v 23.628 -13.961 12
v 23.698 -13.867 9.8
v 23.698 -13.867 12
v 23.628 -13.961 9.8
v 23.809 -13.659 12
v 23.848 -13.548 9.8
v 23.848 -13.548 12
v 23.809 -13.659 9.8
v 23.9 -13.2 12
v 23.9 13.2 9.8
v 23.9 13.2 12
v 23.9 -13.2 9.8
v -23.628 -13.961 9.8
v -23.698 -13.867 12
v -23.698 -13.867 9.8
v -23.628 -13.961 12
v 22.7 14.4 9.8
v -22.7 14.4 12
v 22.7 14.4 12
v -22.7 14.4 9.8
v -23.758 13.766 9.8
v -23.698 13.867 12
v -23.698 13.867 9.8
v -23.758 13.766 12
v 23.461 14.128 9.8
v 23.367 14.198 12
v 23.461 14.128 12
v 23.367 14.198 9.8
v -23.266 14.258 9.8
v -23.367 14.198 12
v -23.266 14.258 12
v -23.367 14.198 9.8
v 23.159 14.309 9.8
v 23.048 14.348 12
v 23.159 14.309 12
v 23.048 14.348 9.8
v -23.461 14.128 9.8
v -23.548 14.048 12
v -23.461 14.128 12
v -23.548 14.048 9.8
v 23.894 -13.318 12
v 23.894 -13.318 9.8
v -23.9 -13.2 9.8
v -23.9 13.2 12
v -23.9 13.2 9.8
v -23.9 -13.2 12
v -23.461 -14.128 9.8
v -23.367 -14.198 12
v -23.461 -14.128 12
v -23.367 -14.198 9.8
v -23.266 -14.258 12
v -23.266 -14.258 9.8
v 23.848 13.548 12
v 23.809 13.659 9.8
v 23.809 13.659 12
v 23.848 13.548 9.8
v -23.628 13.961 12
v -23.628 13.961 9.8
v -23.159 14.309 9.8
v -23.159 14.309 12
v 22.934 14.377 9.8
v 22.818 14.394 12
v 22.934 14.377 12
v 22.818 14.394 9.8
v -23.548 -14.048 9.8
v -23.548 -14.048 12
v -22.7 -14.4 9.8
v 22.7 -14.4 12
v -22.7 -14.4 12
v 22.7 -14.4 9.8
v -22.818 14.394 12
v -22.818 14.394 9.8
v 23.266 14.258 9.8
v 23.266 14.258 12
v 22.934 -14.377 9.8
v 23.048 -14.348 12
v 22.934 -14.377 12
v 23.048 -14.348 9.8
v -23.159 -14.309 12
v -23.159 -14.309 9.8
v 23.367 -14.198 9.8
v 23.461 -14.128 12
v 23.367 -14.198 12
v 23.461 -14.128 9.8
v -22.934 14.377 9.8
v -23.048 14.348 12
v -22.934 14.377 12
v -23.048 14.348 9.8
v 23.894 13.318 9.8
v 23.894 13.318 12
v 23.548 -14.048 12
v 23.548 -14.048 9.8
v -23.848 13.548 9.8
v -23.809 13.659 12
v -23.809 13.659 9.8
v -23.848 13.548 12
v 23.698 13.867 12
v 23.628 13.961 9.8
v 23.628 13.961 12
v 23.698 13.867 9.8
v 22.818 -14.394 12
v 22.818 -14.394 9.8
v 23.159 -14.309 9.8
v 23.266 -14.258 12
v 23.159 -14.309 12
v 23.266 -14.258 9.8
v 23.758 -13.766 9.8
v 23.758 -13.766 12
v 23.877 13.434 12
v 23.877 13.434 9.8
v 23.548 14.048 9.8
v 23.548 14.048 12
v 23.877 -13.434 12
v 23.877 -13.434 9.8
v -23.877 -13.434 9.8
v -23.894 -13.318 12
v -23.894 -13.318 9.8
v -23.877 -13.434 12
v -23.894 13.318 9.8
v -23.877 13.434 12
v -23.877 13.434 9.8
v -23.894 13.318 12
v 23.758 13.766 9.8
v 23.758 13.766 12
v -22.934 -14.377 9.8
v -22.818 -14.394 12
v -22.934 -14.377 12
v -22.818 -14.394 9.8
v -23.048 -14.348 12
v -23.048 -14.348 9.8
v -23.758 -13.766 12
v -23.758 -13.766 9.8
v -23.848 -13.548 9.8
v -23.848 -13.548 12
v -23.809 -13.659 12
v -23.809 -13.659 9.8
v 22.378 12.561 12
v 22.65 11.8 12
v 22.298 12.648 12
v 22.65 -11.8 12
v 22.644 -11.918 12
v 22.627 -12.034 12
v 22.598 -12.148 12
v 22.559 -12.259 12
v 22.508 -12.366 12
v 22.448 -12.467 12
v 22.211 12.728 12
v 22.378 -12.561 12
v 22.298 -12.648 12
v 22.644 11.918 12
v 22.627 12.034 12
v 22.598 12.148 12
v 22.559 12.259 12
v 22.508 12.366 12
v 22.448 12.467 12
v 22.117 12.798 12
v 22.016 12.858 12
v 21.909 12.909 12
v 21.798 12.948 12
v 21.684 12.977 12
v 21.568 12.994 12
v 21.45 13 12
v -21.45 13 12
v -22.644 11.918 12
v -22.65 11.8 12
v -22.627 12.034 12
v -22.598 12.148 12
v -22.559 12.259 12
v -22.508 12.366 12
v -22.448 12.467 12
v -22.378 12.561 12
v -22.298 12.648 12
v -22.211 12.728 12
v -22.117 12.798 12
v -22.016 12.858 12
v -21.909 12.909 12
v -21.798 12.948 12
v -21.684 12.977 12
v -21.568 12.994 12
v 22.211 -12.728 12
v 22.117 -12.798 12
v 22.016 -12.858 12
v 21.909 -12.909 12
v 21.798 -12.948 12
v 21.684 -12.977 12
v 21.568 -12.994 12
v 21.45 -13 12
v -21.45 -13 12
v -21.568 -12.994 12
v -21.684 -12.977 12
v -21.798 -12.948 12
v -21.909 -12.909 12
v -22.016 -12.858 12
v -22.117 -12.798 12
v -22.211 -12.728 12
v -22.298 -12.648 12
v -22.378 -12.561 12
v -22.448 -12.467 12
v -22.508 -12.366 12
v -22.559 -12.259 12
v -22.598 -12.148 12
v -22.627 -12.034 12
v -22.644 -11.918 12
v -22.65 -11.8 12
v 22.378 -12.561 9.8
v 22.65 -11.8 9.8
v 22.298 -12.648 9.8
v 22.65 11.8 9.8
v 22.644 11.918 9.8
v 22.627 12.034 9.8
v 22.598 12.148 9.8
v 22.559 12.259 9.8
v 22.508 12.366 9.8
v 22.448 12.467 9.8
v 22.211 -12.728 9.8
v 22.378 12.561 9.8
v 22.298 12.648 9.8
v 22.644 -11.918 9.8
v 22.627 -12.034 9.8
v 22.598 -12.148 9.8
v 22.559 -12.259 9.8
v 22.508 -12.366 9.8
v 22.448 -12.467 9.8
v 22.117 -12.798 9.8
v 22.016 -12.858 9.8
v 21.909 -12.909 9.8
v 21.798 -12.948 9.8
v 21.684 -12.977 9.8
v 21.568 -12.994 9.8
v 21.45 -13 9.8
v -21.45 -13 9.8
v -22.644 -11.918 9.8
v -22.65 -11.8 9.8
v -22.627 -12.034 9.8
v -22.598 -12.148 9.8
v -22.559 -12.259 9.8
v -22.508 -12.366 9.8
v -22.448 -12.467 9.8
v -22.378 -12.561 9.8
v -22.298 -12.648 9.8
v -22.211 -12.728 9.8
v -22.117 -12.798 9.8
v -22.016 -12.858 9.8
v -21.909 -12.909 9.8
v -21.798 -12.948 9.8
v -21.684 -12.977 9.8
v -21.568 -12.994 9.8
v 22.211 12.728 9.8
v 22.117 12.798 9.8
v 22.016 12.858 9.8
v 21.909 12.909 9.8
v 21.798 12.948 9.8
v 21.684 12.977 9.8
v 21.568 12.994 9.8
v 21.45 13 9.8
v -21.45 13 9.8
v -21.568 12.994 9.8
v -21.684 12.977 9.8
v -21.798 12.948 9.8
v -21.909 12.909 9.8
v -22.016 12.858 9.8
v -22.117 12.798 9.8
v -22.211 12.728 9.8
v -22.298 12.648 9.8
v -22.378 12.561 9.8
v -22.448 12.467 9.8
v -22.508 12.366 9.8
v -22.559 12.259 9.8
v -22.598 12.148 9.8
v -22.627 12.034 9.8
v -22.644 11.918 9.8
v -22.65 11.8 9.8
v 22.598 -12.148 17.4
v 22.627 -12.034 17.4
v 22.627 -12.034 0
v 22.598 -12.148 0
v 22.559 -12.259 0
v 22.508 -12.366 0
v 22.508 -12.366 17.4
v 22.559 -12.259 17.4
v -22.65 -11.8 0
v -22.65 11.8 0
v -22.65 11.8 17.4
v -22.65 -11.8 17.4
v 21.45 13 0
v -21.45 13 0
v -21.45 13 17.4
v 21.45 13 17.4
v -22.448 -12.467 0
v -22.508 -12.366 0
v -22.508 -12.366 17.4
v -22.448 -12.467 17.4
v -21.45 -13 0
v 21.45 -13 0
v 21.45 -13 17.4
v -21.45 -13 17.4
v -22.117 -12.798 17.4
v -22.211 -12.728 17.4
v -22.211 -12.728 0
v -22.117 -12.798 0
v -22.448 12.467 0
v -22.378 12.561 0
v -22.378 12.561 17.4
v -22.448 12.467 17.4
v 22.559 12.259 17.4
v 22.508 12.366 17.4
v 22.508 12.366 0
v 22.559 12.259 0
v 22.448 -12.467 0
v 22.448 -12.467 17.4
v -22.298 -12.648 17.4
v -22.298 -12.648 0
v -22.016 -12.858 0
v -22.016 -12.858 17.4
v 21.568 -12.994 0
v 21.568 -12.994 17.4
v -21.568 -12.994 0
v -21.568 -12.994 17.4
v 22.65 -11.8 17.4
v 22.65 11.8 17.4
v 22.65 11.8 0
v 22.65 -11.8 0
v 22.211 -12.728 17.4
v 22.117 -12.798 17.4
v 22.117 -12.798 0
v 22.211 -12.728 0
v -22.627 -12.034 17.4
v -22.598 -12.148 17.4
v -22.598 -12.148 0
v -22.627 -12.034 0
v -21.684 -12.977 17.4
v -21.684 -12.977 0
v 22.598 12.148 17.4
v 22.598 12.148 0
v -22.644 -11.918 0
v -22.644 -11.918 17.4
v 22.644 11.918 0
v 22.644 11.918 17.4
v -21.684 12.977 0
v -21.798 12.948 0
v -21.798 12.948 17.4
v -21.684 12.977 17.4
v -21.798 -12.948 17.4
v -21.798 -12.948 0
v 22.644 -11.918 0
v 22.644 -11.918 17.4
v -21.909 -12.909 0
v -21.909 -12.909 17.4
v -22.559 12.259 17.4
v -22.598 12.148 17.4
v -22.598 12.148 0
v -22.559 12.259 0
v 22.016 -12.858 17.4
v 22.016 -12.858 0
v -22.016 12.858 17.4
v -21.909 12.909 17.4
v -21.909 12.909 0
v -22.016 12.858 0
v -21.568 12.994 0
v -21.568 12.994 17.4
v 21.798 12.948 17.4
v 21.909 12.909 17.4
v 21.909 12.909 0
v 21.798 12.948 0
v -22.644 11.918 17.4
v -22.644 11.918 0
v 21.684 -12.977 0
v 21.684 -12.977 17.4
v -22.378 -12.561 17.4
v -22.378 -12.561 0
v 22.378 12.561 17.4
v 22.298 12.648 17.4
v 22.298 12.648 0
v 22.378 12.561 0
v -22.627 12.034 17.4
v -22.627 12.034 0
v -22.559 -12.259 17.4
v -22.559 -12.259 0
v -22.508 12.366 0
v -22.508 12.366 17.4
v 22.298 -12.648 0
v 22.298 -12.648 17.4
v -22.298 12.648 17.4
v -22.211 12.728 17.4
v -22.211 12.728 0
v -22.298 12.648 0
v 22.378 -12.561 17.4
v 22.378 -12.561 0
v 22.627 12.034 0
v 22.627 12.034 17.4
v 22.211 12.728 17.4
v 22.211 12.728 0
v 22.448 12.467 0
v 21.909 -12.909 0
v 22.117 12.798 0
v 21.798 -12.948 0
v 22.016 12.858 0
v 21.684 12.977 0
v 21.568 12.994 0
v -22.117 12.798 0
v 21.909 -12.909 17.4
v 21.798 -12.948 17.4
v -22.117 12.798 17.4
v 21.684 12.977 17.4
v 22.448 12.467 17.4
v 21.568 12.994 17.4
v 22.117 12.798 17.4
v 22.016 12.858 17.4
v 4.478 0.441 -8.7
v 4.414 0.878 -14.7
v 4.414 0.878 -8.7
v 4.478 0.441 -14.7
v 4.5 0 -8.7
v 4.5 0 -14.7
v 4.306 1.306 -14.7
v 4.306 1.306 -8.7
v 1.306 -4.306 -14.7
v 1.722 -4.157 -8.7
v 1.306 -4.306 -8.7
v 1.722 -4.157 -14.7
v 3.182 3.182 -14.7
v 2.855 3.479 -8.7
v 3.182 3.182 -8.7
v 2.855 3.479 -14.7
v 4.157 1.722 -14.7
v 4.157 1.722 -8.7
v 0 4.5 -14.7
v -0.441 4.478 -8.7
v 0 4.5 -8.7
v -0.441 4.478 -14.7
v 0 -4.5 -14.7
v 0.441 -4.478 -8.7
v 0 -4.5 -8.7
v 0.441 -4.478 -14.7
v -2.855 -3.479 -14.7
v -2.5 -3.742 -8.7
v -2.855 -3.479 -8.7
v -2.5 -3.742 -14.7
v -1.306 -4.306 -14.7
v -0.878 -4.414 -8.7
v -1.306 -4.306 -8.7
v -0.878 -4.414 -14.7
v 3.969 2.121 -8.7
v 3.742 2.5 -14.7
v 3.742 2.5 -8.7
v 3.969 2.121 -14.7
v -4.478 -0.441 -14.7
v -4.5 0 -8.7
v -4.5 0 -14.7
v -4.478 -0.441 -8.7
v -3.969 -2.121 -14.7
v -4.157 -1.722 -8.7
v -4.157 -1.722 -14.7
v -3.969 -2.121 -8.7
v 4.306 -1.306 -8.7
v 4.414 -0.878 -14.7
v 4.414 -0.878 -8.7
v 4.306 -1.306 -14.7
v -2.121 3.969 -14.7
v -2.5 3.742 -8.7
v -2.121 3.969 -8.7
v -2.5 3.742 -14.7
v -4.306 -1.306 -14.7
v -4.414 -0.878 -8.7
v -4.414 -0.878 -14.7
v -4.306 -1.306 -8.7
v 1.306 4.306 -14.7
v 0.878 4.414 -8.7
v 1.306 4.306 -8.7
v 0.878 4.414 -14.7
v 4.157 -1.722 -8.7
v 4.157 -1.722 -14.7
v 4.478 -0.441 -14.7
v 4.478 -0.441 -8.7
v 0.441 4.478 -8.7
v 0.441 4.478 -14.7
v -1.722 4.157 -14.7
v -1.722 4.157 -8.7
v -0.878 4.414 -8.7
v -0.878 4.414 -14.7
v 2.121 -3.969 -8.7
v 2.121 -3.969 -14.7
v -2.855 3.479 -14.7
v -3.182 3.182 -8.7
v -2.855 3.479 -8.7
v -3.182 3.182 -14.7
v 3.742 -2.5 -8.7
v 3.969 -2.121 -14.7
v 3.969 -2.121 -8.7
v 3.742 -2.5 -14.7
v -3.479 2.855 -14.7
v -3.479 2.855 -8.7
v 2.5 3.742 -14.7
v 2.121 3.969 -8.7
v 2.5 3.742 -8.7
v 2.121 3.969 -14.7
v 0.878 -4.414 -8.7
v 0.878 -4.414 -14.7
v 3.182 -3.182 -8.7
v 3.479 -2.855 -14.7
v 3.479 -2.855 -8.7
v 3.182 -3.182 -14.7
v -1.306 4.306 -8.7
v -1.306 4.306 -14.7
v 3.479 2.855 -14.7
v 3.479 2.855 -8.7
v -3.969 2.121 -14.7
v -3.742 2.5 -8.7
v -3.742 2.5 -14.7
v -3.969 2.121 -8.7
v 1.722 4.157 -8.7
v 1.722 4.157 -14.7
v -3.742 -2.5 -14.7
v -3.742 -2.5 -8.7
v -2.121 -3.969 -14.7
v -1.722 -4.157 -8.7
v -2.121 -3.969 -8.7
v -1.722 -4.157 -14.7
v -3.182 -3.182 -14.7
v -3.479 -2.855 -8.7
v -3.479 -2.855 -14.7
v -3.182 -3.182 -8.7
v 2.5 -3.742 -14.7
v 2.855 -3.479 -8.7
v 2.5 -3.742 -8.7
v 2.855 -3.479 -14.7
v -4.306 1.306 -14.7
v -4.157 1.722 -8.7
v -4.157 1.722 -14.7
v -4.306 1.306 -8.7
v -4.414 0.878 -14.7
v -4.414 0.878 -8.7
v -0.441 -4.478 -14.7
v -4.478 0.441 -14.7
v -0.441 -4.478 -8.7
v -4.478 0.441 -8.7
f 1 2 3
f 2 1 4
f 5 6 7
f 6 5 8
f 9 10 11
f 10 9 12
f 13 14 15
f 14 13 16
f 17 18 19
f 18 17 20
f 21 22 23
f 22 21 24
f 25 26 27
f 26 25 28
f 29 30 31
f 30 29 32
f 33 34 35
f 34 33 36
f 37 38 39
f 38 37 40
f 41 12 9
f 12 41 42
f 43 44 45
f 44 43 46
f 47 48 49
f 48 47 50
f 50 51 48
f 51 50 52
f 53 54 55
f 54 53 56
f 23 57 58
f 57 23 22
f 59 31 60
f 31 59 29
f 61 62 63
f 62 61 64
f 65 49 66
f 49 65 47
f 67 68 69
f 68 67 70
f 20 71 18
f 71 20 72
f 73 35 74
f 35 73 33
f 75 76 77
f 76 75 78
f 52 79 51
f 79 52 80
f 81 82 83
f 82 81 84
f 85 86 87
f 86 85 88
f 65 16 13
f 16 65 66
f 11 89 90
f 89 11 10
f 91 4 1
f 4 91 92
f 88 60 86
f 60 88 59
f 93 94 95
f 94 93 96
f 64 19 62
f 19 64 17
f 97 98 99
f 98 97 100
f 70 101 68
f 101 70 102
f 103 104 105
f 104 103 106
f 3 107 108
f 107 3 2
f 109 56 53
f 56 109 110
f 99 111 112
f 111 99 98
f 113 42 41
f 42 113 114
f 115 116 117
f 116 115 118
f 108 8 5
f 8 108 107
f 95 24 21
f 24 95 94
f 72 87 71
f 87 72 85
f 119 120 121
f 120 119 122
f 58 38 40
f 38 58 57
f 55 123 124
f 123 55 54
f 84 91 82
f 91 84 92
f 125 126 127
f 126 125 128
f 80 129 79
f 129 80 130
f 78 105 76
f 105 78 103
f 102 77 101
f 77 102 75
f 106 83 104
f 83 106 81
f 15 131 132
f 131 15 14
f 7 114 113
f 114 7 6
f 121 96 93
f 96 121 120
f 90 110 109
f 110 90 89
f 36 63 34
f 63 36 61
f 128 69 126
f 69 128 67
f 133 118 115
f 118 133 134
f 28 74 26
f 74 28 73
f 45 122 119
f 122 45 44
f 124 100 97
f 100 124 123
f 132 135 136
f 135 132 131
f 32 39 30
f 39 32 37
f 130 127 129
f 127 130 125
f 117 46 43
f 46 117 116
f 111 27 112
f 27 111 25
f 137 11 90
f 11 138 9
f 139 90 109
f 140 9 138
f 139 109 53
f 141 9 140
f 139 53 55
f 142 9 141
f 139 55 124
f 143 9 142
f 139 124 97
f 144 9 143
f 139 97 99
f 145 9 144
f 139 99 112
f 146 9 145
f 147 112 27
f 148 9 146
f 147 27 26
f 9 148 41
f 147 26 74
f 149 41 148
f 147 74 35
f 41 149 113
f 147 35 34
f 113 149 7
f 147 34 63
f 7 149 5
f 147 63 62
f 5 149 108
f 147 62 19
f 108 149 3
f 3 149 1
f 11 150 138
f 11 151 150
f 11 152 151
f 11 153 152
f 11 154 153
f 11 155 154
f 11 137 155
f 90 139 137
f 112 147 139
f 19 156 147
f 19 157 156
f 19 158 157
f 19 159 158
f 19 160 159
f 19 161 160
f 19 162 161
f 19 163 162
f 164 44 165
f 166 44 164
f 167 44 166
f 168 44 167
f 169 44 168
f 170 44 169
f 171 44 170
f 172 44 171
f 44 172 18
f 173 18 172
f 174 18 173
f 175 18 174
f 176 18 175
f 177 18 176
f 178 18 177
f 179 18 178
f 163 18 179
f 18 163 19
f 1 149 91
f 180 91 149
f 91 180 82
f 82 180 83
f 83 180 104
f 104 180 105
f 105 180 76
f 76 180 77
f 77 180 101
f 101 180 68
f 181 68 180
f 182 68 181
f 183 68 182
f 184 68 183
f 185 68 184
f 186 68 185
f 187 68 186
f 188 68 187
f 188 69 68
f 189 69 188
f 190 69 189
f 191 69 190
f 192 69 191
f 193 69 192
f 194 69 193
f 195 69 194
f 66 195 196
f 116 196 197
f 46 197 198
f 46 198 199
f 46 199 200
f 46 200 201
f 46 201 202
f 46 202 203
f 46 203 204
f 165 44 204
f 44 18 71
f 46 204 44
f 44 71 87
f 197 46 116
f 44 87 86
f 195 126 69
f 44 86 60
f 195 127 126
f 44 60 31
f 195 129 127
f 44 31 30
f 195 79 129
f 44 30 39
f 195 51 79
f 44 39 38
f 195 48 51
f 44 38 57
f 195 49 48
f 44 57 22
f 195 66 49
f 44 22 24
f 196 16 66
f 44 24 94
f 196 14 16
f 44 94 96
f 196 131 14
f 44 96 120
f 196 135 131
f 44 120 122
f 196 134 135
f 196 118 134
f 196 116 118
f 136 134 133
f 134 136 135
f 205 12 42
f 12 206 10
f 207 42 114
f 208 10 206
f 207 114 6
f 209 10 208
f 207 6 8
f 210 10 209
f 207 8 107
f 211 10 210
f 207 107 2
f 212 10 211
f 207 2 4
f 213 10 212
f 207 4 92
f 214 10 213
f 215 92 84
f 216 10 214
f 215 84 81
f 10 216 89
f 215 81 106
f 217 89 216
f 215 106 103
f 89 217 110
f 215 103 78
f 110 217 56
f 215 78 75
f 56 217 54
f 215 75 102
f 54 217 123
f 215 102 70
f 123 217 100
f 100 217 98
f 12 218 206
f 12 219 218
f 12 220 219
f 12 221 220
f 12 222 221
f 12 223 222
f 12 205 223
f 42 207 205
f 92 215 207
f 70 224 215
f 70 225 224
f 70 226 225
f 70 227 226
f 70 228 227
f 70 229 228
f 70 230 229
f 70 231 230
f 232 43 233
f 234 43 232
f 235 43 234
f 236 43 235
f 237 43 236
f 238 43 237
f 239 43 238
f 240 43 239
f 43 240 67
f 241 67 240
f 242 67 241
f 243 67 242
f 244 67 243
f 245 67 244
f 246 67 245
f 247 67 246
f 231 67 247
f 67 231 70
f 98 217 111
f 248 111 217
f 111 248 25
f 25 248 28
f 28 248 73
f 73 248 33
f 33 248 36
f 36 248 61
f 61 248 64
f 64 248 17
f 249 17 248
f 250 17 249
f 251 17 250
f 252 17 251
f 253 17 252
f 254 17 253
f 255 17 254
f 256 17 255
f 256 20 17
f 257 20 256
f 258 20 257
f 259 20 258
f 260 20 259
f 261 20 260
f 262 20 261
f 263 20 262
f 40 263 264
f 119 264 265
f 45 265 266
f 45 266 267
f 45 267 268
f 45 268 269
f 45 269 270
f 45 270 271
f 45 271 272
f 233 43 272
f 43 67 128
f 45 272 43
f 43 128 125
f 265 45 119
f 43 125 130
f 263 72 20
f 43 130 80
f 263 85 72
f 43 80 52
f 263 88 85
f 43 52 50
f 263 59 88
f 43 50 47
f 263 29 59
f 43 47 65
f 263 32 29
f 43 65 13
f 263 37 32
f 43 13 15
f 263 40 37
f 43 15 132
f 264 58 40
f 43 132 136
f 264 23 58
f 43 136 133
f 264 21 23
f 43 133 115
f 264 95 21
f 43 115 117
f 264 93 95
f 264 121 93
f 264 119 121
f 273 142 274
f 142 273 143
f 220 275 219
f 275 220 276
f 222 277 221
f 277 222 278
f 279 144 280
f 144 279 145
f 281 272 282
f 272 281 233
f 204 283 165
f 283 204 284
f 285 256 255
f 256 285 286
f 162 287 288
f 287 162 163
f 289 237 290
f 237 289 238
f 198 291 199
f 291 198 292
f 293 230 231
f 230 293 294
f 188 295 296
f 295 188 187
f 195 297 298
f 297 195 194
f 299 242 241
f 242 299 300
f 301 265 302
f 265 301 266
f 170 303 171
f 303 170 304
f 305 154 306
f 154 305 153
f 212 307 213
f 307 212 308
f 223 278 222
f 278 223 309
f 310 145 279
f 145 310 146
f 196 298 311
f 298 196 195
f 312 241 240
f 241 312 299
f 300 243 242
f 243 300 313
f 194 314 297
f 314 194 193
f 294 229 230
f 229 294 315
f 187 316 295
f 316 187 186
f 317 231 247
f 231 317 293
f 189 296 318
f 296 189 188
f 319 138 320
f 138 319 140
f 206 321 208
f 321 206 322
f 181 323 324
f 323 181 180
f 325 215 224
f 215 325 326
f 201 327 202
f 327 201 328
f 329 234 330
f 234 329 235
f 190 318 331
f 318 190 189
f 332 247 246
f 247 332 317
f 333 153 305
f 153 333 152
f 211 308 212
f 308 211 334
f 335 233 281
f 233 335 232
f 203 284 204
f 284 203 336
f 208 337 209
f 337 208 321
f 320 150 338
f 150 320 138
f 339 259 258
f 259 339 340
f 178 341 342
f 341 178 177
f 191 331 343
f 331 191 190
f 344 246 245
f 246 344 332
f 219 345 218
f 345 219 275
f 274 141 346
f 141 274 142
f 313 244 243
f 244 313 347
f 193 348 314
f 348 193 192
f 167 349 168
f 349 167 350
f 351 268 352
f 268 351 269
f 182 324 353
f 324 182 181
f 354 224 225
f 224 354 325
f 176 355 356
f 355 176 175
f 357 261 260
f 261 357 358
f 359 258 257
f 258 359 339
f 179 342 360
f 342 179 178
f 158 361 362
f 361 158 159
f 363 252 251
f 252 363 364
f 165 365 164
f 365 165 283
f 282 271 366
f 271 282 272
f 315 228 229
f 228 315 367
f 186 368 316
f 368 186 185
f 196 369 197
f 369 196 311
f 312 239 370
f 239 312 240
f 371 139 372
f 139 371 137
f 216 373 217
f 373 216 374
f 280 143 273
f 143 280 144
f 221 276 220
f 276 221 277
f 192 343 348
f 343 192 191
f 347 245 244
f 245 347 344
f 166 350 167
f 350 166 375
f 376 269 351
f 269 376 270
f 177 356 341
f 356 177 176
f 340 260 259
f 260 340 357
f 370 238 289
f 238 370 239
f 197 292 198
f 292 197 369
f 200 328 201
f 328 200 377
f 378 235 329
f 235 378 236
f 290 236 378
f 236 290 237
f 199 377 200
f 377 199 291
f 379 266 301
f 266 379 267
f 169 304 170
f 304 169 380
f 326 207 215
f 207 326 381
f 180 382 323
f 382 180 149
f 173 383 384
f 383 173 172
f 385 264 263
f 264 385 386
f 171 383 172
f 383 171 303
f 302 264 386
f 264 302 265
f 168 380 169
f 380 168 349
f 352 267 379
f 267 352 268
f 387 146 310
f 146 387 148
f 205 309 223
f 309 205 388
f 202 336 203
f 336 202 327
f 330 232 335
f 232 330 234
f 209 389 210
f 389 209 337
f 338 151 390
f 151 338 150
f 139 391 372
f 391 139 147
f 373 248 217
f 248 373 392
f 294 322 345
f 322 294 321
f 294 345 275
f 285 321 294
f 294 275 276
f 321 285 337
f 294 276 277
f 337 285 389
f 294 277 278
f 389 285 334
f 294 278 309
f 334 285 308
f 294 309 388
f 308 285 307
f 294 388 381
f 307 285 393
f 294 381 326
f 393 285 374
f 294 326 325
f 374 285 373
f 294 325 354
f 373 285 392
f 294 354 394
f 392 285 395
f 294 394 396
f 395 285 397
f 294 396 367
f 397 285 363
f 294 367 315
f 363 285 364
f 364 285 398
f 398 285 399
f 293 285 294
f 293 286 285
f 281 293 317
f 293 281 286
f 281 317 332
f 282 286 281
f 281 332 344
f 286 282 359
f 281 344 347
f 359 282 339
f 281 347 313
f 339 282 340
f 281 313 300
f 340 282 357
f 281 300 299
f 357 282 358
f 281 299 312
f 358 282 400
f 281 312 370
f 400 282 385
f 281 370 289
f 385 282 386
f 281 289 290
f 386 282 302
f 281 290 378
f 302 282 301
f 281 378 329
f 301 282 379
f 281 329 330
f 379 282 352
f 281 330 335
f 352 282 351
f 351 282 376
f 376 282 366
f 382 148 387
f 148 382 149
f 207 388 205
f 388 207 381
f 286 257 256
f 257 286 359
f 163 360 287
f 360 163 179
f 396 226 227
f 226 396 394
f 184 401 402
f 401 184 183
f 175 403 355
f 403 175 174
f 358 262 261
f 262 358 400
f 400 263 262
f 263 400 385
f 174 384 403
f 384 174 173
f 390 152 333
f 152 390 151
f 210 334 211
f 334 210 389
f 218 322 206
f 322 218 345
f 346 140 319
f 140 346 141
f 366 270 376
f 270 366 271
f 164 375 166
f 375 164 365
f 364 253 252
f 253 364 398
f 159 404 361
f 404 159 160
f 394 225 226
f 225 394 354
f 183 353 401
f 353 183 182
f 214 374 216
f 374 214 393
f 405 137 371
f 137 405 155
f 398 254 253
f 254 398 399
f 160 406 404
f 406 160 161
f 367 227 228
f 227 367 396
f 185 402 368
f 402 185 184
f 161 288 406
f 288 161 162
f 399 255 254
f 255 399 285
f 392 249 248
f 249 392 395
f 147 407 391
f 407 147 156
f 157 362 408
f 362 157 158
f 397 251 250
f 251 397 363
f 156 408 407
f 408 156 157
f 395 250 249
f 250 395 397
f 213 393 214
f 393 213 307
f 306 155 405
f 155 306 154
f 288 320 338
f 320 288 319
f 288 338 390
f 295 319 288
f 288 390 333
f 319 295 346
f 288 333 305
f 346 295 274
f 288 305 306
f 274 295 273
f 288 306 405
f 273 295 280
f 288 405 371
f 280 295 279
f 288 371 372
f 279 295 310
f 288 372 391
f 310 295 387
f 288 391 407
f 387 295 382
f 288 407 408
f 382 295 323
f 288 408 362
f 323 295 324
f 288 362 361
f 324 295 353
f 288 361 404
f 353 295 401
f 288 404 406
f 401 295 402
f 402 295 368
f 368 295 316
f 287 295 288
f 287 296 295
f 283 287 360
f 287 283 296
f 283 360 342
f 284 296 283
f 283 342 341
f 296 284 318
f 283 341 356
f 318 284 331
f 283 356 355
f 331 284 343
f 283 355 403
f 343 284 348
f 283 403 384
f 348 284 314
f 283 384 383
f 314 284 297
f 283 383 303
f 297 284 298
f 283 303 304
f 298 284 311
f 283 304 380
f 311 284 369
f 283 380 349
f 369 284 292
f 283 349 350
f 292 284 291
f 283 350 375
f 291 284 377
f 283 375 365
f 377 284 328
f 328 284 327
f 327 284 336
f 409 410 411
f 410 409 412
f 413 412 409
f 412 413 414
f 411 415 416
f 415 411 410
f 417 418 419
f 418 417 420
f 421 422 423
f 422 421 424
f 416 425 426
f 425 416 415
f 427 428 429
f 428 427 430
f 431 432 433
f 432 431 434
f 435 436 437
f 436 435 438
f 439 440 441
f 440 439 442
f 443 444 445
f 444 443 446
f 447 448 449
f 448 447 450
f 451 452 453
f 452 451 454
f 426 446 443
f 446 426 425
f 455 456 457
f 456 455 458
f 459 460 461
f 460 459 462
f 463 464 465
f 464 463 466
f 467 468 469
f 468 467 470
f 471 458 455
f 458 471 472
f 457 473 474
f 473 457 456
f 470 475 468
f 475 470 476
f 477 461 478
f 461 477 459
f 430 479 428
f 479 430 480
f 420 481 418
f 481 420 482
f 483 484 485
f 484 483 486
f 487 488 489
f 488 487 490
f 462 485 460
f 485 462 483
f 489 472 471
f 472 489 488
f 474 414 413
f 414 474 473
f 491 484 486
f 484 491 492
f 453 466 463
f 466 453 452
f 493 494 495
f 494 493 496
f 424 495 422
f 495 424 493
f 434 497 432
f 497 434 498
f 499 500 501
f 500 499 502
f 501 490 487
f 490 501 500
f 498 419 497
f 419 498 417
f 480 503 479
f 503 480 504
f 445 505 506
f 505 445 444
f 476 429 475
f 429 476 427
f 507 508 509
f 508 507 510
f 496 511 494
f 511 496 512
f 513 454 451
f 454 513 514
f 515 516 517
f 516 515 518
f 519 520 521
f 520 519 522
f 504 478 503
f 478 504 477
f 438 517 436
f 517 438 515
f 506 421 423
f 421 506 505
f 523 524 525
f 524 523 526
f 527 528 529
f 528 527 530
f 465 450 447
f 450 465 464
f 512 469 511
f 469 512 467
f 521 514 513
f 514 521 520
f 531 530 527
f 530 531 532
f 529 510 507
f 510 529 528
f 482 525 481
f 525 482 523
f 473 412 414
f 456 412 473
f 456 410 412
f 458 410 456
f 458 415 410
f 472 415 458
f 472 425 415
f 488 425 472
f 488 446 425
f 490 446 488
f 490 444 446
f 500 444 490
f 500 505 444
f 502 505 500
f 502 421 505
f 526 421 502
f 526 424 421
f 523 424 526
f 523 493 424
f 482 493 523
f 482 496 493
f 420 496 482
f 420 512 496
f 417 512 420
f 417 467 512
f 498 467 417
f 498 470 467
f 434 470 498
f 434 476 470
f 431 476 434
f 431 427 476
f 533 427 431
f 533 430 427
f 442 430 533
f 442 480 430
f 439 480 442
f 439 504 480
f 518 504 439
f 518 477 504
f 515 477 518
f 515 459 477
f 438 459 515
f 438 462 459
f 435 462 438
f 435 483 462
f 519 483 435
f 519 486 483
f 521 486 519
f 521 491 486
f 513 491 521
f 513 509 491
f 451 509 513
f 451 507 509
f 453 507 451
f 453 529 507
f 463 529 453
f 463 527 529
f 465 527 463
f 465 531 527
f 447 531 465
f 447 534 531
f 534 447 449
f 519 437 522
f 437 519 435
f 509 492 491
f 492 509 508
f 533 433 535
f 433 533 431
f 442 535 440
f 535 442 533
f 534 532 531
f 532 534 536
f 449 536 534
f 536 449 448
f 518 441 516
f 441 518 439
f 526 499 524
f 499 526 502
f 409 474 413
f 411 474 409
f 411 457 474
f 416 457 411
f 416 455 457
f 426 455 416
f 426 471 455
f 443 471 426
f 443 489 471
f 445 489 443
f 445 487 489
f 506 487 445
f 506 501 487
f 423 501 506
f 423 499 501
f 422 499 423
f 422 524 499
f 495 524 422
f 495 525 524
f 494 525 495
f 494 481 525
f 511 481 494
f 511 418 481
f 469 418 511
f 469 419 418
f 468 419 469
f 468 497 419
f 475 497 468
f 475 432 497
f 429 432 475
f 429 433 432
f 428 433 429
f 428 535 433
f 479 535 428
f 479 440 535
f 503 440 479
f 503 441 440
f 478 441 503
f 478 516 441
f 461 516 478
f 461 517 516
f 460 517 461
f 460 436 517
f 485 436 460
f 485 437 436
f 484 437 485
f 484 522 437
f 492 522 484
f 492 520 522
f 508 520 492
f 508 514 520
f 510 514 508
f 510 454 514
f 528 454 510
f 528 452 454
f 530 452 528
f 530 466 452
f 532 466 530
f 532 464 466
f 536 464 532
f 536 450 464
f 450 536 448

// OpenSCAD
$fn = 64;

body_w = 45.3;
body_h = 26.0;
body_d = 17.4;

bezel_w = 47.8;
bezel_h = 28.8;
bezel_t = 2.2;

ap_w = 36.0;
ap_h = 18.0;

corner_r = 1.2;

module rounded_rect_prism(w,h,d,r=1.0){
    hull(){
        for (sx = [-1, 1], sy = [-1, 1]){
            translate([sx*(w/2 - r), sy*(h/2 - r), 0])
                cylinder(h=d, r=r, center=false);
        }
    }
}

module meter(){
    union(){
        // Bezel with display aperture cutout
        difference(){
            translate([0,0,body_d/2 + bezel_t/2])
                rounded_rect_prism(bezel_w, bezel_h, bezel_t, r=corner_r);
            translate([0,0,body_d/2 + bezel_t/2 - 0.2])
                cube([ap_w, ap_h, bezel_t + 0.4], center=true);
        }

        // Main body (behind bezel)
        translate([0,0,0])
            rounded_rect_prism(body_w, body_h, body_d, r=corner_r);

        // Small rear protrusion to ensure non-empty detail
        translate([0,0,-body_d/2 - 3])
            cylinder(h=6, r=4.5, center=true);
    }
}

meter();
